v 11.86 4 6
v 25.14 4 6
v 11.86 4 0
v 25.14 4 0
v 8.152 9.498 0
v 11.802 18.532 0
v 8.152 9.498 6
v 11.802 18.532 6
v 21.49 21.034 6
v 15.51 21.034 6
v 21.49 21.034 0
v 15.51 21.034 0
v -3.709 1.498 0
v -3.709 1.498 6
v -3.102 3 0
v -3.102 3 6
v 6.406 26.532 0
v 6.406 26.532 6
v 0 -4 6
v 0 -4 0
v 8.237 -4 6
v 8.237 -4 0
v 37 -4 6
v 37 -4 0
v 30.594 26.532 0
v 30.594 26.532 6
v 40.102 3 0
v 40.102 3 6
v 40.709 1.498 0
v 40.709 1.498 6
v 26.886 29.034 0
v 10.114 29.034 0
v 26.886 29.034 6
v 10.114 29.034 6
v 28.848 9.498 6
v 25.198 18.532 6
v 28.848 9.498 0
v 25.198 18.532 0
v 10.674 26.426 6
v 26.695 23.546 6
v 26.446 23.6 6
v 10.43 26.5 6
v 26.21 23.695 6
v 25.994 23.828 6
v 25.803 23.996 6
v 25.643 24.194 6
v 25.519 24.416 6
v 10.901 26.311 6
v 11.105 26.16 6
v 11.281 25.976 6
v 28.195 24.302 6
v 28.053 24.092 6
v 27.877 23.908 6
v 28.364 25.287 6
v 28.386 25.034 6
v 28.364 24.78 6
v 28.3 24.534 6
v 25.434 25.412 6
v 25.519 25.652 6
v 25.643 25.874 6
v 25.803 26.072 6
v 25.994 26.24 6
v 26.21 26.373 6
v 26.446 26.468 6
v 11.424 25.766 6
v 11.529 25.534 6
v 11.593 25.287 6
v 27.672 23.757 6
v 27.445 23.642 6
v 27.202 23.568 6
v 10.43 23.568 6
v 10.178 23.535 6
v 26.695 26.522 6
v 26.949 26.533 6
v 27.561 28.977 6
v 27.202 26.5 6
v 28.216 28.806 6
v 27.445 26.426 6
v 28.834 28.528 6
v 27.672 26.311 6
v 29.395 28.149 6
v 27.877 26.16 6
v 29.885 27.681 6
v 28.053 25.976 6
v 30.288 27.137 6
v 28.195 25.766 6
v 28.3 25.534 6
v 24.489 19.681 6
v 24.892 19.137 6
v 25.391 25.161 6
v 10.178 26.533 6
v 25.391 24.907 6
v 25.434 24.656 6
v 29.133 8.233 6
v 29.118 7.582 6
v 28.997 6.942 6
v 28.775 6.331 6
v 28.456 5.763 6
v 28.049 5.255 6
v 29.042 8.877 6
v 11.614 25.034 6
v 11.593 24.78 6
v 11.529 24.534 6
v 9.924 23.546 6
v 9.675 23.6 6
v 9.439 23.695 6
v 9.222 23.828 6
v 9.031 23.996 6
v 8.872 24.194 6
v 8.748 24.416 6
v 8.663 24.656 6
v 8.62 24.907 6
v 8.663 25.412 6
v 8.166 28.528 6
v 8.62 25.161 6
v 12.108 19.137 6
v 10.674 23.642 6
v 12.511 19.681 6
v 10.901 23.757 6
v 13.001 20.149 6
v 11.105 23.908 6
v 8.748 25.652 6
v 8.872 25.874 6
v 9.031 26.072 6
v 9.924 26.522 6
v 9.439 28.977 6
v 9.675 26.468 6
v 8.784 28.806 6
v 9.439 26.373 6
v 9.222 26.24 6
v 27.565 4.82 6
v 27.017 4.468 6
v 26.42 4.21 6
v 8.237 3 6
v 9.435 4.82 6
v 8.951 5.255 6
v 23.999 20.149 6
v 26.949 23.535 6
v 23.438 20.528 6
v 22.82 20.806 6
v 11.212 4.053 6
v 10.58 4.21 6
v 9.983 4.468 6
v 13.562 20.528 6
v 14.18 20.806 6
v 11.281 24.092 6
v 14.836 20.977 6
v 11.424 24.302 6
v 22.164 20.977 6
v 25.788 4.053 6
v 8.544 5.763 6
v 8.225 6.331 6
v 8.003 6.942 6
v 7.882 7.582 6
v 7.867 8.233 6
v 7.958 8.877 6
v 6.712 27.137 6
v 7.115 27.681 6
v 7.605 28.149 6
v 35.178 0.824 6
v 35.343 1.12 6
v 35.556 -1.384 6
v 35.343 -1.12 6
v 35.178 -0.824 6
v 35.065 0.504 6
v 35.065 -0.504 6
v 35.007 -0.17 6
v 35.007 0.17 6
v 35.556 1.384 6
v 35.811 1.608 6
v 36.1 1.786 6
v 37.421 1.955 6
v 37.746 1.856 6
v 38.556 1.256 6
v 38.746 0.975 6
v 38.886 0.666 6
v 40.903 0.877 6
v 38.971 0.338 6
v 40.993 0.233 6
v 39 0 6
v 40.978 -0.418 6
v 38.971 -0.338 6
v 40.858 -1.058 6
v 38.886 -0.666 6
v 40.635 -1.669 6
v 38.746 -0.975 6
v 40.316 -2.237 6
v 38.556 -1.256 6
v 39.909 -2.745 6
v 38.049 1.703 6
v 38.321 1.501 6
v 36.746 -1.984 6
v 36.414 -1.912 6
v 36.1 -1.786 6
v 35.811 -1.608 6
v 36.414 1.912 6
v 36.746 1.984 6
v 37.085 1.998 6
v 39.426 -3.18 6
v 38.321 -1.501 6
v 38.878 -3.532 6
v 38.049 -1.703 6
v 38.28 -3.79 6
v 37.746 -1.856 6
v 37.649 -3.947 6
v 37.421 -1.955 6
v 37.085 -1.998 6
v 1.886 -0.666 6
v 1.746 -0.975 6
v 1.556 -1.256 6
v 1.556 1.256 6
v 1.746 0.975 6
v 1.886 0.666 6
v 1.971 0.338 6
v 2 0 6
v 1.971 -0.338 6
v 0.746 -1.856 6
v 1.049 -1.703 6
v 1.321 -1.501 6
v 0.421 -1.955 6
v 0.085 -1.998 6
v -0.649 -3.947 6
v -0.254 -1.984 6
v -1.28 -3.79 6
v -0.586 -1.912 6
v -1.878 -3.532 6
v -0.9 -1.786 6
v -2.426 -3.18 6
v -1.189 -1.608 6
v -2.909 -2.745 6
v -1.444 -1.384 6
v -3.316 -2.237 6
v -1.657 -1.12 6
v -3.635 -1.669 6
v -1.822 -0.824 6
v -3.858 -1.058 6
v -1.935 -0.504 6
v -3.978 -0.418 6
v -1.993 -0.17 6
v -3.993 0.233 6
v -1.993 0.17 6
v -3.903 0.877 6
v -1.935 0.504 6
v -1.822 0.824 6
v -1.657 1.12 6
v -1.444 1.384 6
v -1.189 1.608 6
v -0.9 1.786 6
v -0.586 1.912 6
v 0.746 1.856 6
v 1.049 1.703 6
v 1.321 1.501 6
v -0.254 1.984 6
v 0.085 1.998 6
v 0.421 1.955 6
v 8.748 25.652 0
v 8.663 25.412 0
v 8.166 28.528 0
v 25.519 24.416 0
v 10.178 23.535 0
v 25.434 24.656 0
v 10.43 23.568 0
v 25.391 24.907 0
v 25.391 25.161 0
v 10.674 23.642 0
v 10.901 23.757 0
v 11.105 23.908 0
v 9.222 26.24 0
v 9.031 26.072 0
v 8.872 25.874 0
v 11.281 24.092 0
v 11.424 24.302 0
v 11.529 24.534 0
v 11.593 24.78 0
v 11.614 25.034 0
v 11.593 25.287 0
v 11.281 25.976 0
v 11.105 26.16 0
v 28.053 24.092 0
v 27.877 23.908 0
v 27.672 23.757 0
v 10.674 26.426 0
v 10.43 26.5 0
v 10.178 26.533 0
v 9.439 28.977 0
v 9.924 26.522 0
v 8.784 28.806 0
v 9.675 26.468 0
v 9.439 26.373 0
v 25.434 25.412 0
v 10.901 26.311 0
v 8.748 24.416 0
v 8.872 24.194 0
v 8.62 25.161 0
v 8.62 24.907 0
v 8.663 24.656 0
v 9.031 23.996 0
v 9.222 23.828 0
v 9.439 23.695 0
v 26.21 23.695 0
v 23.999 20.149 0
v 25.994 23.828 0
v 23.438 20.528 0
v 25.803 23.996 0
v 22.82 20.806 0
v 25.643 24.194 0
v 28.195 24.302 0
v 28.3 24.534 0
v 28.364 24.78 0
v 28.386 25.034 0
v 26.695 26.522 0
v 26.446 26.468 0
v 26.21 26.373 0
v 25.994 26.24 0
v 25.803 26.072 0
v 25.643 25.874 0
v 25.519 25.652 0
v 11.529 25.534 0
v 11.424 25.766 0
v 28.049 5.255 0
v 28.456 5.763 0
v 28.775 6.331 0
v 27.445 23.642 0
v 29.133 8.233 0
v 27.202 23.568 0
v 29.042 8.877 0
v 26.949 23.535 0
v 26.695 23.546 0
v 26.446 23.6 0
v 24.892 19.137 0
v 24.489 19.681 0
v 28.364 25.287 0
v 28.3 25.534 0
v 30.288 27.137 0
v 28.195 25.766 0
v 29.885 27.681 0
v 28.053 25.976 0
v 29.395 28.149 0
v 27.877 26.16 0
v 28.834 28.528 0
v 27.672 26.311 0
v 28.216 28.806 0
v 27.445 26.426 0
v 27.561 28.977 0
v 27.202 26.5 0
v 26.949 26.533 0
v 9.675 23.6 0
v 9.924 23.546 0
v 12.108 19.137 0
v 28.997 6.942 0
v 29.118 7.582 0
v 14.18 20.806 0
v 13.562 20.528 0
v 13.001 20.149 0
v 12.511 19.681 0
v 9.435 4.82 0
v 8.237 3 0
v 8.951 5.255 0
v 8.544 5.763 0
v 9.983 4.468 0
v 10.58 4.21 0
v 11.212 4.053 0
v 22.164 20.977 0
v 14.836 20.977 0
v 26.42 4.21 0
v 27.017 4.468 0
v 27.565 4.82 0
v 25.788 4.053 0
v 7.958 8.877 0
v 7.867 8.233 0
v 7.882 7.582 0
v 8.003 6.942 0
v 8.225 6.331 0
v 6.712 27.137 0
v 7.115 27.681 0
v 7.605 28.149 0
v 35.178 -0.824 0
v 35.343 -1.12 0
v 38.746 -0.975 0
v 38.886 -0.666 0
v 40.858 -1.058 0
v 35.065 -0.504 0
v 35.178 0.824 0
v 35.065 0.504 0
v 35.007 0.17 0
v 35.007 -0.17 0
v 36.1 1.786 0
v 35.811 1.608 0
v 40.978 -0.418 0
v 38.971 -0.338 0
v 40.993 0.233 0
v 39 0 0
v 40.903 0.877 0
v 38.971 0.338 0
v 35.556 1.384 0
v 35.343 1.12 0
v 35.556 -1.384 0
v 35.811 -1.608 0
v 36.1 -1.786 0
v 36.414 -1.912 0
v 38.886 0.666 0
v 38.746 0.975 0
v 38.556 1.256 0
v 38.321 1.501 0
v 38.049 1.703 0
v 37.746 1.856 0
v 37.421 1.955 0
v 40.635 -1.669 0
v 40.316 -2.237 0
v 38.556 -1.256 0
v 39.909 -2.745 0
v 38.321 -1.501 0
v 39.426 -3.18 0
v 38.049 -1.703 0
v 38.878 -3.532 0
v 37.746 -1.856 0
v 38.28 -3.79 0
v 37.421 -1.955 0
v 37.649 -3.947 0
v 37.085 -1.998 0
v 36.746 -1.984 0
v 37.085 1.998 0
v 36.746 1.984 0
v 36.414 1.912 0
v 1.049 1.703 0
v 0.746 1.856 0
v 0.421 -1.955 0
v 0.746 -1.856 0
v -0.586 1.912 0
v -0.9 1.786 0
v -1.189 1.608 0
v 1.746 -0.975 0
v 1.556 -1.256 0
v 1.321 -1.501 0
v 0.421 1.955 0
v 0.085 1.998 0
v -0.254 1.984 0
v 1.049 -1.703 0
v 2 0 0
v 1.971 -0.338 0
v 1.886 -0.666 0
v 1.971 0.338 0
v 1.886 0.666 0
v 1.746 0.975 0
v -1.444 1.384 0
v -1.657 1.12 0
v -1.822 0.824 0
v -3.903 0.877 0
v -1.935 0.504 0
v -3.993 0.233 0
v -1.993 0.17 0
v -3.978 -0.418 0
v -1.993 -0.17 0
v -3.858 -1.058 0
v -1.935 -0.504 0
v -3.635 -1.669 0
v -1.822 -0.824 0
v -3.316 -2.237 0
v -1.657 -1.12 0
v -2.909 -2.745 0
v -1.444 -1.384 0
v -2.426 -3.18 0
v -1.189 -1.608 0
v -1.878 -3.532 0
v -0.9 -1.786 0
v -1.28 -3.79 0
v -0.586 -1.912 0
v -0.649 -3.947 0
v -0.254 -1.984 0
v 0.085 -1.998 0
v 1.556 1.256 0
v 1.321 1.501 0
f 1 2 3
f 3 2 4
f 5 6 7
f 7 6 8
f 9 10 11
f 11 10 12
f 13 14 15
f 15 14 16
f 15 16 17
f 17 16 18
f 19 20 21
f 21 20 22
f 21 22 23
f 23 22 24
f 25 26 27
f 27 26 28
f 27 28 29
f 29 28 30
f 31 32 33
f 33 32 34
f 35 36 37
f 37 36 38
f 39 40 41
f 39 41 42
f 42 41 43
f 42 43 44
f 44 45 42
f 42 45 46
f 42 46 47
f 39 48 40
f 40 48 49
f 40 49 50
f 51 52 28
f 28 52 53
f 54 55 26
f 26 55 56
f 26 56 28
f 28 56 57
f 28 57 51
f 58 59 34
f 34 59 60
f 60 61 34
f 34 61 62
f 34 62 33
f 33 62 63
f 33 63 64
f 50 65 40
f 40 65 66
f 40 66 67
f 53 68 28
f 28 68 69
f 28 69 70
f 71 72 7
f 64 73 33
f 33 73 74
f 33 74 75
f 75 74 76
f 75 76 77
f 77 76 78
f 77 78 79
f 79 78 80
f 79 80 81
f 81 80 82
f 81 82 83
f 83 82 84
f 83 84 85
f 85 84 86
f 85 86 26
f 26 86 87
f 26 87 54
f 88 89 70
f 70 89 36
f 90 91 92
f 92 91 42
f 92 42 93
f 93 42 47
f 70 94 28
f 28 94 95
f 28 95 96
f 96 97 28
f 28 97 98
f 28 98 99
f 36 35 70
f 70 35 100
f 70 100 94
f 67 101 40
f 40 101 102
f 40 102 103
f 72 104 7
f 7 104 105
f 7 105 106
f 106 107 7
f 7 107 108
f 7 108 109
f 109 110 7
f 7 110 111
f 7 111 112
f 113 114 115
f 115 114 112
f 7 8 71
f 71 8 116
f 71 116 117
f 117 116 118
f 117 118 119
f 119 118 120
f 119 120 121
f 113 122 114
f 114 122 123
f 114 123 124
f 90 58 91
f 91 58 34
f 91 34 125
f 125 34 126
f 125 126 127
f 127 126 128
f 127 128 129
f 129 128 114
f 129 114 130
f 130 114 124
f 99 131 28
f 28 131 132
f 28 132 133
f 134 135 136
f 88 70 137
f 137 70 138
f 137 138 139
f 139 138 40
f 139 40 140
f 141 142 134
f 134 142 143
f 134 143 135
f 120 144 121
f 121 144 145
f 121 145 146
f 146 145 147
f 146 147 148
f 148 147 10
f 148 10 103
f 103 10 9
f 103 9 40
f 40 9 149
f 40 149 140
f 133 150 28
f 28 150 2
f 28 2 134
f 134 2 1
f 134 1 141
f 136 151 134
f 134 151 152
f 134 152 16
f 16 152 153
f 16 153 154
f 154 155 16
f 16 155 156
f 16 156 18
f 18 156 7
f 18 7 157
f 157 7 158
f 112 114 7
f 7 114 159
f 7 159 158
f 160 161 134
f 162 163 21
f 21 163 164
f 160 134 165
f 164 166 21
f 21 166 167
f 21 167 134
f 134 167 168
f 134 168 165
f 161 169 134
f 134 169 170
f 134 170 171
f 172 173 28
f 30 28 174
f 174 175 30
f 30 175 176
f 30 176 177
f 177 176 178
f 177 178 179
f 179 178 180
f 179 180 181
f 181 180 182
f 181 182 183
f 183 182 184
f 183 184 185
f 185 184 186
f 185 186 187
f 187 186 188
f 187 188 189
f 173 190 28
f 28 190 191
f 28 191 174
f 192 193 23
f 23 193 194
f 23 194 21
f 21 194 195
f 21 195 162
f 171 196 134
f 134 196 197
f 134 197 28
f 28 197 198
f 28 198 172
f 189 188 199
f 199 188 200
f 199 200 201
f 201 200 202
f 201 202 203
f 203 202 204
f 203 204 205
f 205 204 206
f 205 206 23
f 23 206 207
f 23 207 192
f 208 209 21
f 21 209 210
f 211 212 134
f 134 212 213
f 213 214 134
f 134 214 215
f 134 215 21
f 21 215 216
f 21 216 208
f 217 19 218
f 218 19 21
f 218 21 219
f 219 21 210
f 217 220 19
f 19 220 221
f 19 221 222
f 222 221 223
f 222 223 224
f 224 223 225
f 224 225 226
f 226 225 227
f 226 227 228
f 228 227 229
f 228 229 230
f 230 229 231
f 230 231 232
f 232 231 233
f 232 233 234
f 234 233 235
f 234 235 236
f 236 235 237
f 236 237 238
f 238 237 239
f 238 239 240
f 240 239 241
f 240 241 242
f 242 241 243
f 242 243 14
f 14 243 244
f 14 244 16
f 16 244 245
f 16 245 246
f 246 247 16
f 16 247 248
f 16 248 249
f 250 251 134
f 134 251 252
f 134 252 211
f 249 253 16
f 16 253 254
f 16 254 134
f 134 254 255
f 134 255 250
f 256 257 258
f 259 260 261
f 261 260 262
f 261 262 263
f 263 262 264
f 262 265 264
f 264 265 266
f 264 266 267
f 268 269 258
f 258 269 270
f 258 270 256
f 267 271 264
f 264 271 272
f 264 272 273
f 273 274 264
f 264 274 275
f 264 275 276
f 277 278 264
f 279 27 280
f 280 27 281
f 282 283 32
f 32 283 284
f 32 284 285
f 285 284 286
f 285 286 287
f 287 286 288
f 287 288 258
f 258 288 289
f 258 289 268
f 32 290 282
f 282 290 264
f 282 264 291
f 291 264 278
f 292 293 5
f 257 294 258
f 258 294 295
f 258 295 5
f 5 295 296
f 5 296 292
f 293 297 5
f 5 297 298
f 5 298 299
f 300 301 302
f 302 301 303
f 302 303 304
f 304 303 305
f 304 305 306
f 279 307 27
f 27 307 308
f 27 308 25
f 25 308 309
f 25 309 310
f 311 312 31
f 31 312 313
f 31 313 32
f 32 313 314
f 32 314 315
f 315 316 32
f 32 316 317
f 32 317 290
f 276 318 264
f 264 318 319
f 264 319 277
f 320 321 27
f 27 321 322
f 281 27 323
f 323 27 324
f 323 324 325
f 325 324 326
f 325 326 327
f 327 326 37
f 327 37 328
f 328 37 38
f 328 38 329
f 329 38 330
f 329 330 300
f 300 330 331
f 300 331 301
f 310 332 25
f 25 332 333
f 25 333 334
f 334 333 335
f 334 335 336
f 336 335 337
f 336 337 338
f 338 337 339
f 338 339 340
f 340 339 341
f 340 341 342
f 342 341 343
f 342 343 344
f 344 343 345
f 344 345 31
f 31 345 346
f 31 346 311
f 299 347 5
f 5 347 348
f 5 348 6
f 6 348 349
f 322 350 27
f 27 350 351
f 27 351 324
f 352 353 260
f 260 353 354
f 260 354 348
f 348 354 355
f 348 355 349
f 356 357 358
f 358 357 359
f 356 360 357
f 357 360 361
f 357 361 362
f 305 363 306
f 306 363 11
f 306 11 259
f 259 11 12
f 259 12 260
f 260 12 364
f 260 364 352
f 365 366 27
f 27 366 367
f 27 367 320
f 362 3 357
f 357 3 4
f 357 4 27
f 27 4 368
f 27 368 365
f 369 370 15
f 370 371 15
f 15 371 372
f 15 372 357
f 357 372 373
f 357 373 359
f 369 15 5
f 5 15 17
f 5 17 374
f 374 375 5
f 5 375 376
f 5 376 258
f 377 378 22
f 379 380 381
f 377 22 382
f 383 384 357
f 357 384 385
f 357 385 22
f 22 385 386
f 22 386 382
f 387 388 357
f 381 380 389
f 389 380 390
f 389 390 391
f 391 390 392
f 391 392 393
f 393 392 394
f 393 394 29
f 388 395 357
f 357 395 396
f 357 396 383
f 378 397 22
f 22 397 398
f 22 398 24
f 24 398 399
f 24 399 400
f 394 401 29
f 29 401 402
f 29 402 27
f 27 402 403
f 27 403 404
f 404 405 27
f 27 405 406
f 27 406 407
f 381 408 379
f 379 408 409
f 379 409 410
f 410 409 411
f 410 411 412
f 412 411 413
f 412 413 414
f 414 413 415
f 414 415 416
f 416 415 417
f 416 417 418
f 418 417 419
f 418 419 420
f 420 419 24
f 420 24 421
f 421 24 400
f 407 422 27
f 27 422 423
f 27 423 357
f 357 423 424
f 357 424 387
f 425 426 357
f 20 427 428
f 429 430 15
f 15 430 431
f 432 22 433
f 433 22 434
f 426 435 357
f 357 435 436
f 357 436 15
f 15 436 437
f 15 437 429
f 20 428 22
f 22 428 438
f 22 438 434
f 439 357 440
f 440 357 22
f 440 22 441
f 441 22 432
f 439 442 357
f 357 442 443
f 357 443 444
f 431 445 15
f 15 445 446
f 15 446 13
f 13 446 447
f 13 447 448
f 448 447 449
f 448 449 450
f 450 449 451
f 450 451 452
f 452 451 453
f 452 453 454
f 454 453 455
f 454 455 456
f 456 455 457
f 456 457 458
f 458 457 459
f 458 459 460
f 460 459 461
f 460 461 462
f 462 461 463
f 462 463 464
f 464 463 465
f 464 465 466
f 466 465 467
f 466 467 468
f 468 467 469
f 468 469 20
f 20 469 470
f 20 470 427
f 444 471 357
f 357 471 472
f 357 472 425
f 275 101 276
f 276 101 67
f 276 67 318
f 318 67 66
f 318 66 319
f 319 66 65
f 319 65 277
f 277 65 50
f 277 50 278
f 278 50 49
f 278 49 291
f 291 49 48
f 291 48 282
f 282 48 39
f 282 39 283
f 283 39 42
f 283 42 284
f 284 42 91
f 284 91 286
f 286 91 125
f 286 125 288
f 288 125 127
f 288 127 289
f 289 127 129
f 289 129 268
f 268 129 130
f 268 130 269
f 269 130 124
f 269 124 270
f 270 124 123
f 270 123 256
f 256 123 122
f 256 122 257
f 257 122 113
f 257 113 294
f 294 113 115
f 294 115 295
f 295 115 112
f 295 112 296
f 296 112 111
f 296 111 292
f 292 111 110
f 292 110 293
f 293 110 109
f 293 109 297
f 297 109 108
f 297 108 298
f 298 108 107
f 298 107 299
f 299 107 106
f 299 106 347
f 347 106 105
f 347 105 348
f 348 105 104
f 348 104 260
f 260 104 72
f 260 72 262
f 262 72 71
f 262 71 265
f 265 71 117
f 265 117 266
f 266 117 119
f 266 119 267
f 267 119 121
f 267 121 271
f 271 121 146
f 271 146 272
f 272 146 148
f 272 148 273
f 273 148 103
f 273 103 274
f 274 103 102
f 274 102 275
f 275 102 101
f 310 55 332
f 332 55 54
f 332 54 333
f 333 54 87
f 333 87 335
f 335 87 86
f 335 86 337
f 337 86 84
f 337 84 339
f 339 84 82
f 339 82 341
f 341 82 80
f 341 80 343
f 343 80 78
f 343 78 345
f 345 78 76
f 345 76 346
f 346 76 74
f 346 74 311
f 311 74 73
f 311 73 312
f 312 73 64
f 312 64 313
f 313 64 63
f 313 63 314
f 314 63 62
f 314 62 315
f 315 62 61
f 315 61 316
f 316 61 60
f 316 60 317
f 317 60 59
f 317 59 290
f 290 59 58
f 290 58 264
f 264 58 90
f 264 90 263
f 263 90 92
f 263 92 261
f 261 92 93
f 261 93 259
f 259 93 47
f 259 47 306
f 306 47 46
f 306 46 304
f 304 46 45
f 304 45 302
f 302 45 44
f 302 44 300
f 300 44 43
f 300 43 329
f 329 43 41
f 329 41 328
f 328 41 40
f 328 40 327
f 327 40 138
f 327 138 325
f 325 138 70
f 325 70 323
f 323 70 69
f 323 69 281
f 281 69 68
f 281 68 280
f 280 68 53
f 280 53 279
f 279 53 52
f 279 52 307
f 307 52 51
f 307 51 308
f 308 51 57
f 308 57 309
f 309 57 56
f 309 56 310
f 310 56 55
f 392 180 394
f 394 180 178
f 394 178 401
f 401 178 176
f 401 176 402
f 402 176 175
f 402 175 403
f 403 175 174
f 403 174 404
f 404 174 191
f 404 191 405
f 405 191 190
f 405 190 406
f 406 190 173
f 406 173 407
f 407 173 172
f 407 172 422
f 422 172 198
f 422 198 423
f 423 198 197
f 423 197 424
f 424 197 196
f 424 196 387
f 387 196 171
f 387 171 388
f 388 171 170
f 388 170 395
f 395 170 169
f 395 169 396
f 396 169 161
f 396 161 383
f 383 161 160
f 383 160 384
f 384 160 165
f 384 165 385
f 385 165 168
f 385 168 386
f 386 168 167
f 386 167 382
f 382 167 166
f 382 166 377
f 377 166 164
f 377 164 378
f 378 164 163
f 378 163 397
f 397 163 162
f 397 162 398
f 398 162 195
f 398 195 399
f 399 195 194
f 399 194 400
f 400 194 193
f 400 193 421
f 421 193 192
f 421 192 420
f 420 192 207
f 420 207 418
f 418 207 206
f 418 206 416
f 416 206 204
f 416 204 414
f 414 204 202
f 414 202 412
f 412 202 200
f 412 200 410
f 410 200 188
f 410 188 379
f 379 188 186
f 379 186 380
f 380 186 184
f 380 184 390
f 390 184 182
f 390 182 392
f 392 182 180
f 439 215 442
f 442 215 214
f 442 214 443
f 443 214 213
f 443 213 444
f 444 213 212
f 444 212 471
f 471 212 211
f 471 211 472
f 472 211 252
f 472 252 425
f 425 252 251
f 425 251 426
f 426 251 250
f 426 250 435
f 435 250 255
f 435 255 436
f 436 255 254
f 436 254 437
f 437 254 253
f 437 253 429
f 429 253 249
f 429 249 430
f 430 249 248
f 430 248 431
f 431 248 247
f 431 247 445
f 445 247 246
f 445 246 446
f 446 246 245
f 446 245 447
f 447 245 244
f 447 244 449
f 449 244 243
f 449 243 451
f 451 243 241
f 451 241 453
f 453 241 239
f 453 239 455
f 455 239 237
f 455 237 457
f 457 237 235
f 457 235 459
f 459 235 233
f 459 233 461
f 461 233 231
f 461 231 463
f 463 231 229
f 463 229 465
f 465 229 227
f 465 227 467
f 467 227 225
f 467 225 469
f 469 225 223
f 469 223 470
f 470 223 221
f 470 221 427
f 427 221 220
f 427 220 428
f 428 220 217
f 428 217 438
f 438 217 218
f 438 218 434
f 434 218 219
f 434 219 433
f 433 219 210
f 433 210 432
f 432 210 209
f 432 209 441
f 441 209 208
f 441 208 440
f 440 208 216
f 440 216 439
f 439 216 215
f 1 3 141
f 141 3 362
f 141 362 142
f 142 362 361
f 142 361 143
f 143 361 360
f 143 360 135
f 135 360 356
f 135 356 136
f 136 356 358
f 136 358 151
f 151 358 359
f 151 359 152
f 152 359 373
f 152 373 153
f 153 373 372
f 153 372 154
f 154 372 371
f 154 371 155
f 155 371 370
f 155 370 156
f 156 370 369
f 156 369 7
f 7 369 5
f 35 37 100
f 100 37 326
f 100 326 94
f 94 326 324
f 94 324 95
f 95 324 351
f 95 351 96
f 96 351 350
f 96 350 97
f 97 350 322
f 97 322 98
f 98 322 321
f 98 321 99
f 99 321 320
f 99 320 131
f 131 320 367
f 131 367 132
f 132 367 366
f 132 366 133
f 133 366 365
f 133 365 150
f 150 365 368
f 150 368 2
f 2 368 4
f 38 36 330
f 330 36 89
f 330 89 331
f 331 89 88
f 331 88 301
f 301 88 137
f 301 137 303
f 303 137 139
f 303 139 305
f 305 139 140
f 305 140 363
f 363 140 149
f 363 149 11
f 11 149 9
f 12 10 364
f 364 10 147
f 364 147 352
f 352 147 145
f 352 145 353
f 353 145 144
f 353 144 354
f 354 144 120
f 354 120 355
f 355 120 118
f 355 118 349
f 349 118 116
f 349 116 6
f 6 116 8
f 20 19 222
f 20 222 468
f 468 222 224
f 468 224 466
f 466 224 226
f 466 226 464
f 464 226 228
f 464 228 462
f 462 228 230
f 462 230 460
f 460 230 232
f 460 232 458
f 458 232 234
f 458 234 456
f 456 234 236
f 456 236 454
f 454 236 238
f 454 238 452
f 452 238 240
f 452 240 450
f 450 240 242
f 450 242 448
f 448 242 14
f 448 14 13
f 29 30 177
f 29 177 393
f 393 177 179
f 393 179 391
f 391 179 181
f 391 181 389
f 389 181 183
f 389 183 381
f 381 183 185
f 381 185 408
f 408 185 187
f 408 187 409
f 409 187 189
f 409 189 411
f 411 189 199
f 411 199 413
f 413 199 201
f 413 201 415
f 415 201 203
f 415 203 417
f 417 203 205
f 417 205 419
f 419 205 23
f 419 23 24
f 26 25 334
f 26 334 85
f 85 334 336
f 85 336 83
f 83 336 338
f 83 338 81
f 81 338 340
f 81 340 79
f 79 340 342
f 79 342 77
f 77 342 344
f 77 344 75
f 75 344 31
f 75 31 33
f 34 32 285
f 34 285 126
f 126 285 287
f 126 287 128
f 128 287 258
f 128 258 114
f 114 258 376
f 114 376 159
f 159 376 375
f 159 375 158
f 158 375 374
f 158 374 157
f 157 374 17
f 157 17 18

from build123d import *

# Parameters (mm, degrees)
EXTRUDE_1_DEPTH     = 6
SKETCH_5_R          = 2
SKETCH_5_R_2        = 1.5
CUT_EXTRUDE_3_DEPTH = 53.172568548
FILLET_1_R          = 4


with BuildPart() as part:
    # d → 凸台-拉伸1 (new body)
    # profile 1 of 2: a face of its own
    with BuildSketch(Plane.XY):
        Polygon((-5.930243874, -4), (7.416343955, 29.033964073), (29.583656045, 29.033964073), (42.930243874, -4), align=None)
        Polygon((0, 0), (37, 0), (26.885621978, 25.033964073), (10.114378022, 25.033964073), align=None, mode=Mode.SUBTRACT)
    # profile 2 of 2: a face of its own
    with BuildSketch(Plane.XY):
        Polygon((0, 0), (10.114378022, 25.033964073), (26.885621978, 25.033964073), (37, 0), align=None)
        Polygon((5.930243874, 4), (31.069756126, 4), (24.18758791, 21.033964073), (12.81241209, 21.033964073), align=None, mode=Mode.SUBTRACT)
    extrude(amount=EXTRUDE_1_DEPTH)

    # 草图5 → 切除-拉伸3 (cut, through all)
    with BuildSketch(Plane.XY.offset(6)):
        Circle(SKETCH_5_R)
        with Locations((37, 0)):
            Circle(SKETCH_5_R)
        with Locations((26.885621978, 25.033964073)):
            Circle(SKETCH_5_R_2)
        with Locations((10.114378022, 25.033964073)):
            Circle(SKETCH_5_R_2)
    extrude(amount=-CUT_EXTRUDE_3_DEPTH, mode=Mode.SUBTRACT)

    # 圆角1
    fillet_1_edges = [part.edges().sort_by_distance(p)[0] for p in [
        (31.069756126, 4, 3),
        (24.18758791, 21.033964073, 3),
        (12.81241209, 21.033964073, 3),
        (5.930243874, 4, 3),
        (7.416343955, 29.033964073, 3),
        (29.583656045, 29.033964073, 3),
        (42.930243874, -4, 3),
        (-5.930243874, -4, 3),
    ]]
    fillet(fillet_1_edges, radius=FILLET_1_R)


solid = part.part
